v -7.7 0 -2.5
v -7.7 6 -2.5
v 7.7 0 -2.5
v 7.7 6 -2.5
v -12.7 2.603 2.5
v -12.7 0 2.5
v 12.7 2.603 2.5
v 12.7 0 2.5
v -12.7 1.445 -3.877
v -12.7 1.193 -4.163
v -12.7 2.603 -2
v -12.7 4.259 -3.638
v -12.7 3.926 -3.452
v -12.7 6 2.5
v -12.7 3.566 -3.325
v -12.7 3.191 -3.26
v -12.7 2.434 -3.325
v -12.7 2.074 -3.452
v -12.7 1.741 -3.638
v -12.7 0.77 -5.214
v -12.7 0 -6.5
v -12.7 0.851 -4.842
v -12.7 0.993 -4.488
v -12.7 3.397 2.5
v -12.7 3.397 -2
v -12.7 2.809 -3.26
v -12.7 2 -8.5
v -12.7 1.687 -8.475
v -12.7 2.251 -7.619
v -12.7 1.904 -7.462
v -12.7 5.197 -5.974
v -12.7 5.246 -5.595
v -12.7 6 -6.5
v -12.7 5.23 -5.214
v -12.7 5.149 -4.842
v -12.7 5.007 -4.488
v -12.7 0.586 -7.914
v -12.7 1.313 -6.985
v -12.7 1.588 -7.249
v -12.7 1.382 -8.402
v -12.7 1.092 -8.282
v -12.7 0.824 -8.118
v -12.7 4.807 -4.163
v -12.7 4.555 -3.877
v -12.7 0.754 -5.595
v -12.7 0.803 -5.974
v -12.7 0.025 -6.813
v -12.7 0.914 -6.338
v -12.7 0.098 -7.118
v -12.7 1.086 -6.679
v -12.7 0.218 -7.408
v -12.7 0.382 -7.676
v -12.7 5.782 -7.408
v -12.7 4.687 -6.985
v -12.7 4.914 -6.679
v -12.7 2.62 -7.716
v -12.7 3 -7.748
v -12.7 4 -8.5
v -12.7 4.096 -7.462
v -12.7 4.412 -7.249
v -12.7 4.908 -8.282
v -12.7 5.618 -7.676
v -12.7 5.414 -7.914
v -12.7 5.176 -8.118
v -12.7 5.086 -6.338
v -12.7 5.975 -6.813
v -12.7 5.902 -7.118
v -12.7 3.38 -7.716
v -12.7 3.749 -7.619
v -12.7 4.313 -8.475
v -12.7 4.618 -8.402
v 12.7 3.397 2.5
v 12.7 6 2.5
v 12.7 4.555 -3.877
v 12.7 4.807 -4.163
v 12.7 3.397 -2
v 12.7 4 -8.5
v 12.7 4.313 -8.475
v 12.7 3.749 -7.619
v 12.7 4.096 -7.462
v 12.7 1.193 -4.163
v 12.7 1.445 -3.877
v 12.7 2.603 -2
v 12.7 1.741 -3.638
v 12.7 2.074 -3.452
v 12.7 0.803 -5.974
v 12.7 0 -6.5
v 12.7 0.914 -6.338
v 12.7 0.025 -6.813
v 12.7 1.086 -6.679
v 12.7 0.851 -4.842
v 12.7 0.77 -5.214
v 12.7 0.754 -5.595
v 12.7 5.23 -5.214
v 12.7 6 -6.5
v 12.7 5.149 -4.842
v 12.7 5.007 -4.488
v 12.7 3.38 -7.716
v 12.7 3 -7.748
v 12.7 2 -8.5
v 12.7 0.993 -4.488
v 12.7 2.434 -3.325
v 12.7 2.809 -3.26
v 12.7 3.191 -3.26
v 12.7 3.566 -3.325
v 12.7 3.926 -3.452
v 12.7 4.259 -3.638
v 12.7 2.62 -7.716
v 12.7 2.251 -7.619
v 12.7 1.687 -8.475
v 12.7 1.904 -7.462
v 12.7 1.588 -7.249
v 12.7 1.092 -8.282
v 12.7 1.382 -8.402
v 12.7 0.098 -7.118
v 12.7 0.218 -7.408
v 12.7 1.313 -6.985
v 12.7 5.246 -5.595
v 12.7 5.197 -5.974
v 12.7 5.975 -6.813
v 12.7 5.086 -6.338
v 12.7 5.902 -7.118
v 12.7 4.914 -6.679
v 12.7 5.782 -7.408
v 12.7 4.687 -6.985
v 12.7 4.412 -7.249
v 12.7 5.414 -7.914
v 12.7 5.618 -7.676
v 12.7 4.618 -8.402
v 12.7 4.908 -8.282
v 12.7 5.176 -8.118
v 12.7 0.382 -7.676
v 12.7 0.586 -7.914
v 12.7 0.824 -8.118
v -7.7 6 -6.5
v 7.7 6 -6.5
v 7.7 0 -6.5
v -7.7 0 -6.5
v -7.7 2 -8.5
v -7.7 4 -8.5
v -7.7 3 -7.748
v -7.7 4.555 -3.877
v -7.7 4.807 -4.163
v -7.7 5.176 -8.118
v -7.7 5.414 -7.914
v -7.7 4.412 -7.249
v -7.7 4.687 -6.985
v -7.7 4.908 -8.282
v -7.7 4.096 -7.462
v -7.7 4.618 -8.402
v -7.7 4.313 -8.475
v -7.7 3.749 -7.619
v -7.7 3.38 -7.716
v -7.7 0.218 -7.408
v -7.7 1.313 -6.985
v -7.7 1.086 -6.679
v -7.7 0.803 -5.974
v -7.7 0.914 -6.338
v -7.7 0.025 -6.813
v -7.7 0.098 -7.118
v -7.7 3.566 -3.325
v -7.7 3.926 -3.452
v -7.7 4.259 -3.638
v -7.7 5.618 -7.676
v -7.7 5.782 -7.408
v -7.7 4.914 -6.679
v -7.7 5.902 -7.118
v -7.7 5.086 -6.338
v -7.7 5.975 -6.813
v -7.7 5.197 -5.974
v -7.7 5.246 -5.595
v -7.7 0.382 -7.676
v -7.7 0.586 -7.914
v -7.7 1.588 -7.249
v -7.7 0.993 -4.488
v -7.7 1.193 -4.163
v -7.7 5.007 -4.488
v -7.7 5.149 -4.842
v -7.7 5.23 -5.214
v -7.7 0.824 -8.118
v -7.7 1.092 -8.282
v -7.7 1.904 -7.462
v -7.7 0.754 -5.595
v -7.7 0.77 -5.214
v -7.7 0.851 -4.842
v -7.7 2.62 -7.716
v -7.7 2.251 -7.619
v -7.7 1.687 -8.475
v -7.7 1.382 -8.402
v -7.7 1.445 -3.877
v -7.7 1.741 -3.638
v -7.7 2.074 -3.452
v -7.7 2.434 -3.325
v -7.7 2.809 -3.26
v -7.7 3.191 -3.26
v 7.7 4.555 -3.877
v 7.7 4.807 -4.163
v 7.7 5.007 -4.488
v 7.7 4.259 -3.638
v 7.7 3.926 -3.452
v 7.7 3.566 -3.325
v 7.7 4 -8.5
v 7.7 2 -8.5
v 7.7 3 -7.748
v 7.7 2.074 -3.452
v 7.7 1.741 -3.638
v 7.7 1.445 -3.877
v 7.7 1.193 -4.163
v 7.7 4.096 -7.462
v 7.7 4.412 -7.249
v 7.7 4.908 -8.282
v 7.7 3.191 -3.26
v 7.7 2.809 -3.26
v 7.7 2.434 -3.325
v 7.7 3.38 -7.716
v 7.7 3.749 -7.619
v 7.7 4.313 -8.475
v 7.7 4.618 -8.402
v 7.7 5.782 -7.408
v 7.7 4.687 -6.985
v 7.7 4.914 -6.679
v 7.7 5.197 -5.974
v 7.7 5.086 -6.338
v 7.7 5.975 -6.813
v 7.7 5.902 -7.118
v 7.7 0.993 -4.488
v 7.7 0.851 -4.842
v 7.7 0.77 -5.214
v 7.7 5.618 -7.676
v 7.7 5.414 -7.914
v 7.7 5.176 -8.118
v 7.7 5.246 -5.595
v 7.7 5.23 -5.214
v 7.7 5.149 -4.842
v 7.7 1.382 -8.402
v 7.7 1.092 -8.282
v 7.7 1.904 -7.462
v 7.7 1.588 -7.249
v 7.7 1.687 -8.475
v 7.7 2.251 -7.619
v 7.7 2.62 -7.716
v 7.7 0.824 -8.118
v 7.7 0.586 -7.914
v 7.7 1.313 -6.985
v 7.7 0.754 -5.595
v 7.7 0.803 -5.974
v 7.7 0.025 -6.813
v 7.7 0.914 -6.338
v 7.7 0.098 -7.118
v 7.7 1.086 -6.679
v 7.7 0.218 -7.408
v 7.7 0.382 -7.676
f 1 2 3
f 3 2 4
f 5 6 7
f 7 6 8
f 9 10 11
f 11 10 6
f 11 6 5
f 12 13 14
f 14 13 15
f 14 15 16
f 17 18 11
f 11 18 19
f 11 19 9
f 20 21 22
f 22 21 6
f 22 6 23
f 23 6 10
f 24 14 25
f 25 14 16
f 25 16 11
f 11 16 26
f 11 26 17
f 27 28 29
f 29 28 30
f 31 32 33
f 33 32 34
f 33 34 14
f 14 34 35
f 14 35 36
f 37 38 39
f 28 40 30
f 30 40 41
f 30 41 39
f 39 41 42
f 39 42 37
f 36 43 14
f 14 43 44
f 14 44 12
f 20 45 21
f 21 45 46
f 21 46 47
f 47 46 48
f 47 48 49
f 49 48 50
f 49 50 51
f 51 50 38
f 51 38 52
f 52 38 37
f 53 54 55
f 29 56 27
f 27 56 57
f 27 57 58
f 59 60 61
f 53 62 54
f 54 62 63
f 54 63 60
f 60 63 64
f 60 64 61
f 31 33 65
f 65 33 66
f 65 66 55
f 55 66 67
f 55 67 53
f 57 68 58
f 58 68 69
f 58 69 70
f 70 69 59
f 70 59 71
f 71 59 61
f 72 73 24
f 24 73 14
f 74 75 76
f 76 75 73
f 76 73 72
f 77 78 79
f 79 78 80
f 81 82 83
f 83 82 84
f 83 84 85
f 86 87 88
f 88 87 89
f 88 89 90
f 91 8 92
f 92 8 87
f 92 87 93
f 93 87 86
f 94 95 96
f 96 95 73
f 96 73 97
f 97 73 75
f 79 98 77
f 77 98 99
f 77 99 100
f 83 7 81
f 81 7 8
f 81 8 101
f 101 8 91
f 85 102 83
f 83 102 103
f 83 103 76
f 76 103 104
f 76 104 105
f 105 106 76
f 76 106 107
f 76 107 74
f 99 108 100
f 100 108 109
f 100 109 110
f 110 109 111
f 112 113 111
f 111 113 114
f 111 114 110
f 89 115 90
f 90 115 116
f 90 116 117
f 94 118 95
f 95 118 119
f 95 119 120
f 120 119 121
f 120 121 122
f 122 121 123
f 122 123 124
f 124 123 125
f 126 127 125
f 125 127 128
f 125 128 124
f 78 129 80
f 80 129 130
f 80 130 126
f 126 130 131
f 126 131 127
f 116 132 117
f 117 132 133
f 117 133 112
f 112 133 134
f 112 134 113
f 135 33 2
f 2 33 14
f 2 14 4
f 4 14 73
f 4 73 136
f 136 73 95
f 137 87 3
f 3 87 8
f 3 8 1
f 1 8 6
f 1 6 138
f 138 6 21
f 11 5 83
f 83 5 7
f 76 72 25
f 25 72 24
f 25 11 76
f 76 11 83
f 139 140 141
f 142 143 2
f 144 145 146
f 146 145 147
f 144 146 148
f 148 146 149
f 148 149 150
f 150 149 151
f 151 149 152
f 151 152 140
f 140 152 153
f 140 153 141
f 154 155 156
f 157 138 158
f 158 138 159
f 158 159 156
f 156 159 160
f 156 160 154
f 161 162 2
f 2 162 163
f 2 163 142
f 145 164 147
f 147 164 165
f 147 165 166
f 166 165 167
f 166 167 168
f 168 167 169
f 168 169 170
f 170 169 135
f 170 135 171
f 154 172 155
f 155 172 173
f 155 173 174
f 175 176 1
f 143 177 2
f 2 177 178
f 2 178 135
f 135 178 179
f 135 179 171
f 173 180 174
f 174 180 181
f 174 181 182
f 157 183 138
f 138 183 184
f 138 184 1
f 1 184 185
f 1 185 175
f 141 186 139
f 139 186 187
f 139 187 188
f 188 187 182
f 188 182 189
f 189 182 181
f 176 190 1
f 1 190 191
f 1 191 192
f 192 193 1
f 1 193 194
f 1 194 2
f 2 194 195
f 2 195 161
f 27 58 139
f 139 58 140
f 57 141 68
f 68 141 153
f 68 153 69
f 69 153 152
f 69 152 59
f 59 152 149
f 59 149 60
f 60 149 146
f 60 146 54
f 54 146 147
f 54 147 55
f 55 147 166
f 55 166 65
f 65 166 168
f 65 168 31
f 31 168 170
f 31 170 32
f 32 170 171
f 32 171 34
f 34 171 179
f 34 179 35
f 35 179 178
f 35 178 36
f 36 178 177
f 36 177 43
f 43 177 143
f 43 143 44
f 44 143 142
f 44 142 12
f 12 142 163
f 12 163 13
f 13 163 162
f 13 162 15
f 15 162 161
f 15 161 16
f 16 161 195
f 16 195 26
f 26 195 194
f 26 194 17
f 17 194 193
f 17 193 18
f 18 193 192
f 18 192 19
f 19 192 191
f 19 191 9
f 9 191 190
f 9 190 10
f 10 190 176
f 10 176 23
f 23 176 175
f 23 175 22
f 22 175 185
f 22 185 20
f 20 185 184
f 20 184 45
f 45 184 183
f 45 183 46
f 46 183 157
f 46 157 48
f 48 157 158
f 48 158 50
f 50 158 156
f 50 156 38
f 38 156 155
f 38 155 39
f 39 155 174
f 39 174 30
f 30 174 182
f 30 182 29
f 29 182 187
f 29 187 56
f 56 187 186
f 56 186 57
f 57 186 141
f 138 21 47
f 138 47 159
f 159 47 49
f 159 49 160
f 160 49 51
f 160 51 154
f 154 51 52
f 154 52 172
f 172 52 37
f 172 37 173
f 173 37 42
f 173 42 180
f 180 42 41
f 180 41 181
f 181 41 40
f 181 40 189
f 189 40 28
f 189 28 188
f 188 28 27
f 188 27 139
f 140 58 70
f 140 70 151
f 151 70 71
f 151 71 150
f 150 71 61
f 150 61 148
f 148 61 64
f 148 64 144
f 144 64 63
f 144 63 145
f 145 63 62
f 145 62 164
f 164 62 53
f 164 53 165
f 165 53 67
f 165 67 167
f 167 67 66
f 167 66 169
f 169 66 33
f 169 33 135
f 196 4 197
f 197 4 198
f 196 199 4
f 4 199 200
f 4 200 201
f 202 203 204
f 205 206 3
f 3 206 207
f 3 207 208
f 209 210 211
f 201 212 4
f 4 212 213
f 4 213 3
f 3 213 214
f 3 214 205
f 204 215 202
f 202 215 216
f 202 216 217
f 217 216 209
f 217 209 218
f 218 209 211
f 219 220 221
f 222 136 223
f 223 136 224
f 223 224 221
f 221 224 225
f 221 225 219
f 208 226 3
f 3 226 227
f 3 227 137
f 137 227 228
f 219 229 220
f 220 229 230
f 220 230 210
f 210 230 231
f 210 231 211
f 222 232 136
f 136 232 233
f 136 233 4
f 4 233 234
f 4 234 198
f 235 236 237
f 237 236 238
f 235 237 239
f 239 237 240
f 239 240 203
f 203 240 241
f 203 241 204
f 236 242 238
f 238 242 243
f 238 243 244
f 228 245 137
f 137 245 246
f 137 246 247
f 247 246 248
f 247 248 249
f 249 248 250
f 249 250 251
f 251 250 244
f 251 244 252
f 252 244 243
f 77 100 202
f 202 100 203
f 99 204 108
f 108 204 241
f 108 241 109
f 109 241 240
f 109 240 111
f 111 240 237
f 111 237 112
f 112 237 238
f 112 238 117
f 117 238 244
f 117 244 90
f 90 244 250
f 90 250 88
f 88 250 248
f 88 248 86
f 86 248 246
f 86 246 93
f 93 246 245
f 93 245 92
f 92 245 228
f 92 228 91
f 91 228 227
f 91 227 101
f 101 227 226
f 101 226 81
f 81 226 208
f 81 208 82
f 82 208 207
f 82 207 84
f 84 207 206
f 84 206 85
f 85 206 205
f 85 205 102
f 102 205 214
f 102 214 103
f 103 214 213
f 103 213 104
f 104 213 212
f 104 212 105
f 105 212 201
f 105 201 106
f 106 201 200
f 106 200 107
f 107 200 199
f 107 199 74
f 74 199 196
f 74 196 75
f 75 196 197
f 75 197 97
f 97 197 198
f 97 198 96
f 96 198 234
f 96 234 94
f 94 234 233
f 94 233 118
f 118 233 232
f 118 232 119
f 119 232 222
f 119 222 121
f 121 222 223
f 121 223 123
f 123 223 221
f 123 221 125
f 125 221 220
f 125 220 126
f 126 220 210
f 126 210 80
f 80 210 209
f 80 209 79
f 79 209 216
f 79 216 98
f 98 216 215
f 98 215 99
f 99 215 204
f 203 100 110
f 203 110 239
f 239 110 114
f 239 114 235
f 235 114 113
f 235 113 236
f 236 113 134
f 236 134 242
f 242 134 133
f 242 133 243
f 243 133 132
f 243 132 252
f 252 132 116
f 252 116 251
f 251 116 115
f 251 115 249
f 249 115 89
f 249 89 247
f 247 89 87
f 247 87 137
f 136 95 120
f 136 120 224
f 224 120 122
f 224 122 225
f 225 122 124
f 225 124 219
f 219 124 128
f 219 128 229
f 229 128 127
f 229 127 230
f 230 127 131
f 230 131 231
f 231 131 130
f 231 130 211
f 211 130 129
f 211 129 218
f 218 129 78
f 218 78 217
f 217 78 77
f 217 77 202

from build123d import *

# Parameters (mm, degrees)
SKETCH1_W             = 25.4
SKETCH1_H             = 5
BOSS_EXTRUDE1_DEPTH   = 6
SKETCH2_W             = 9
SKETCH2_H             = 0.79375
CUT_EXTRUDE1_DEPTH    = 27.218504915
SKETCH6_W             = 5
SKETCH6_H             = 6
BOSS_EXTRUDE2_DEPTH   = 6
F_8_CLEARANCE_HOLE1_D = 4.4958
FILLET1_R             = 2


with BuildPart() as part:
    # Sketch1 → Boss-Extrude1 (new body)
    with BuildSketch(Plane(origin=(0, 0, 0), x_dir=(1, 0, 0), z_dir=(0, 1, 0))):
        Rectangle(SKETCH1_W, SKETCH1_H)
    extrude(amount=BOSS_EXTRUDE1_DEPTH)

    # Sketch2 → Cut-Extrude1 (cut, through all)
    with BuildSketch(Plane(origin=(12.7, 0, 0), x_dir=(0, 0, -1), z_dir=(1, 0, 0))):
        with Locations((-2.5, 3)):
            Rectangle(SKETCH2_W, SKETCH2_H)
    extrude(amount=-CUT_EXTRUDE1_DEPTH, mode=Mode.SUBTRACT)

    # Sketch6 → Boss-Extrude2 (add)
    with BuildSketch(Plane(origin=(0, 0, -2.5), x_dir=(-1, 0, 0), z_dir=(0, 0, -1))):
        with Locations((10.2, 3)):
            Rectangle(SKETCH6_W, SKETCH6_H)
    extrude(amount=BOSS_EXTRUDE2_DEPTH)

    # #8 Clearance Hole1 (through all)
    with Locations(Plane(origin=(-7.7, 0, 0), x_dir=(0, 0, -1), z_dir=(1, 0, 0))):
        with Locations((5.5, 3)):
            Hole(F_8_CLEARANCE_HOLE1_D / 2)

    # Fillet1
    fillet1_edges = [part.edges().sort_by_distance(p)[0] for p in [
        (-10.2, 6, -8.5),
        (-10.2, 0, -8.5),
    ]]
    fillet(fillet1_edges, radius=FILLET1_R)

    # Mirror1: part across plane


with BuildPart() as part_1:
    add(part.part)
    add(part.part.mirror(Plane(origin=(0, 0, 0), x_dir=(0, 0, 1), z_dir=(1, 0, 0))))


solid = part_1.part
